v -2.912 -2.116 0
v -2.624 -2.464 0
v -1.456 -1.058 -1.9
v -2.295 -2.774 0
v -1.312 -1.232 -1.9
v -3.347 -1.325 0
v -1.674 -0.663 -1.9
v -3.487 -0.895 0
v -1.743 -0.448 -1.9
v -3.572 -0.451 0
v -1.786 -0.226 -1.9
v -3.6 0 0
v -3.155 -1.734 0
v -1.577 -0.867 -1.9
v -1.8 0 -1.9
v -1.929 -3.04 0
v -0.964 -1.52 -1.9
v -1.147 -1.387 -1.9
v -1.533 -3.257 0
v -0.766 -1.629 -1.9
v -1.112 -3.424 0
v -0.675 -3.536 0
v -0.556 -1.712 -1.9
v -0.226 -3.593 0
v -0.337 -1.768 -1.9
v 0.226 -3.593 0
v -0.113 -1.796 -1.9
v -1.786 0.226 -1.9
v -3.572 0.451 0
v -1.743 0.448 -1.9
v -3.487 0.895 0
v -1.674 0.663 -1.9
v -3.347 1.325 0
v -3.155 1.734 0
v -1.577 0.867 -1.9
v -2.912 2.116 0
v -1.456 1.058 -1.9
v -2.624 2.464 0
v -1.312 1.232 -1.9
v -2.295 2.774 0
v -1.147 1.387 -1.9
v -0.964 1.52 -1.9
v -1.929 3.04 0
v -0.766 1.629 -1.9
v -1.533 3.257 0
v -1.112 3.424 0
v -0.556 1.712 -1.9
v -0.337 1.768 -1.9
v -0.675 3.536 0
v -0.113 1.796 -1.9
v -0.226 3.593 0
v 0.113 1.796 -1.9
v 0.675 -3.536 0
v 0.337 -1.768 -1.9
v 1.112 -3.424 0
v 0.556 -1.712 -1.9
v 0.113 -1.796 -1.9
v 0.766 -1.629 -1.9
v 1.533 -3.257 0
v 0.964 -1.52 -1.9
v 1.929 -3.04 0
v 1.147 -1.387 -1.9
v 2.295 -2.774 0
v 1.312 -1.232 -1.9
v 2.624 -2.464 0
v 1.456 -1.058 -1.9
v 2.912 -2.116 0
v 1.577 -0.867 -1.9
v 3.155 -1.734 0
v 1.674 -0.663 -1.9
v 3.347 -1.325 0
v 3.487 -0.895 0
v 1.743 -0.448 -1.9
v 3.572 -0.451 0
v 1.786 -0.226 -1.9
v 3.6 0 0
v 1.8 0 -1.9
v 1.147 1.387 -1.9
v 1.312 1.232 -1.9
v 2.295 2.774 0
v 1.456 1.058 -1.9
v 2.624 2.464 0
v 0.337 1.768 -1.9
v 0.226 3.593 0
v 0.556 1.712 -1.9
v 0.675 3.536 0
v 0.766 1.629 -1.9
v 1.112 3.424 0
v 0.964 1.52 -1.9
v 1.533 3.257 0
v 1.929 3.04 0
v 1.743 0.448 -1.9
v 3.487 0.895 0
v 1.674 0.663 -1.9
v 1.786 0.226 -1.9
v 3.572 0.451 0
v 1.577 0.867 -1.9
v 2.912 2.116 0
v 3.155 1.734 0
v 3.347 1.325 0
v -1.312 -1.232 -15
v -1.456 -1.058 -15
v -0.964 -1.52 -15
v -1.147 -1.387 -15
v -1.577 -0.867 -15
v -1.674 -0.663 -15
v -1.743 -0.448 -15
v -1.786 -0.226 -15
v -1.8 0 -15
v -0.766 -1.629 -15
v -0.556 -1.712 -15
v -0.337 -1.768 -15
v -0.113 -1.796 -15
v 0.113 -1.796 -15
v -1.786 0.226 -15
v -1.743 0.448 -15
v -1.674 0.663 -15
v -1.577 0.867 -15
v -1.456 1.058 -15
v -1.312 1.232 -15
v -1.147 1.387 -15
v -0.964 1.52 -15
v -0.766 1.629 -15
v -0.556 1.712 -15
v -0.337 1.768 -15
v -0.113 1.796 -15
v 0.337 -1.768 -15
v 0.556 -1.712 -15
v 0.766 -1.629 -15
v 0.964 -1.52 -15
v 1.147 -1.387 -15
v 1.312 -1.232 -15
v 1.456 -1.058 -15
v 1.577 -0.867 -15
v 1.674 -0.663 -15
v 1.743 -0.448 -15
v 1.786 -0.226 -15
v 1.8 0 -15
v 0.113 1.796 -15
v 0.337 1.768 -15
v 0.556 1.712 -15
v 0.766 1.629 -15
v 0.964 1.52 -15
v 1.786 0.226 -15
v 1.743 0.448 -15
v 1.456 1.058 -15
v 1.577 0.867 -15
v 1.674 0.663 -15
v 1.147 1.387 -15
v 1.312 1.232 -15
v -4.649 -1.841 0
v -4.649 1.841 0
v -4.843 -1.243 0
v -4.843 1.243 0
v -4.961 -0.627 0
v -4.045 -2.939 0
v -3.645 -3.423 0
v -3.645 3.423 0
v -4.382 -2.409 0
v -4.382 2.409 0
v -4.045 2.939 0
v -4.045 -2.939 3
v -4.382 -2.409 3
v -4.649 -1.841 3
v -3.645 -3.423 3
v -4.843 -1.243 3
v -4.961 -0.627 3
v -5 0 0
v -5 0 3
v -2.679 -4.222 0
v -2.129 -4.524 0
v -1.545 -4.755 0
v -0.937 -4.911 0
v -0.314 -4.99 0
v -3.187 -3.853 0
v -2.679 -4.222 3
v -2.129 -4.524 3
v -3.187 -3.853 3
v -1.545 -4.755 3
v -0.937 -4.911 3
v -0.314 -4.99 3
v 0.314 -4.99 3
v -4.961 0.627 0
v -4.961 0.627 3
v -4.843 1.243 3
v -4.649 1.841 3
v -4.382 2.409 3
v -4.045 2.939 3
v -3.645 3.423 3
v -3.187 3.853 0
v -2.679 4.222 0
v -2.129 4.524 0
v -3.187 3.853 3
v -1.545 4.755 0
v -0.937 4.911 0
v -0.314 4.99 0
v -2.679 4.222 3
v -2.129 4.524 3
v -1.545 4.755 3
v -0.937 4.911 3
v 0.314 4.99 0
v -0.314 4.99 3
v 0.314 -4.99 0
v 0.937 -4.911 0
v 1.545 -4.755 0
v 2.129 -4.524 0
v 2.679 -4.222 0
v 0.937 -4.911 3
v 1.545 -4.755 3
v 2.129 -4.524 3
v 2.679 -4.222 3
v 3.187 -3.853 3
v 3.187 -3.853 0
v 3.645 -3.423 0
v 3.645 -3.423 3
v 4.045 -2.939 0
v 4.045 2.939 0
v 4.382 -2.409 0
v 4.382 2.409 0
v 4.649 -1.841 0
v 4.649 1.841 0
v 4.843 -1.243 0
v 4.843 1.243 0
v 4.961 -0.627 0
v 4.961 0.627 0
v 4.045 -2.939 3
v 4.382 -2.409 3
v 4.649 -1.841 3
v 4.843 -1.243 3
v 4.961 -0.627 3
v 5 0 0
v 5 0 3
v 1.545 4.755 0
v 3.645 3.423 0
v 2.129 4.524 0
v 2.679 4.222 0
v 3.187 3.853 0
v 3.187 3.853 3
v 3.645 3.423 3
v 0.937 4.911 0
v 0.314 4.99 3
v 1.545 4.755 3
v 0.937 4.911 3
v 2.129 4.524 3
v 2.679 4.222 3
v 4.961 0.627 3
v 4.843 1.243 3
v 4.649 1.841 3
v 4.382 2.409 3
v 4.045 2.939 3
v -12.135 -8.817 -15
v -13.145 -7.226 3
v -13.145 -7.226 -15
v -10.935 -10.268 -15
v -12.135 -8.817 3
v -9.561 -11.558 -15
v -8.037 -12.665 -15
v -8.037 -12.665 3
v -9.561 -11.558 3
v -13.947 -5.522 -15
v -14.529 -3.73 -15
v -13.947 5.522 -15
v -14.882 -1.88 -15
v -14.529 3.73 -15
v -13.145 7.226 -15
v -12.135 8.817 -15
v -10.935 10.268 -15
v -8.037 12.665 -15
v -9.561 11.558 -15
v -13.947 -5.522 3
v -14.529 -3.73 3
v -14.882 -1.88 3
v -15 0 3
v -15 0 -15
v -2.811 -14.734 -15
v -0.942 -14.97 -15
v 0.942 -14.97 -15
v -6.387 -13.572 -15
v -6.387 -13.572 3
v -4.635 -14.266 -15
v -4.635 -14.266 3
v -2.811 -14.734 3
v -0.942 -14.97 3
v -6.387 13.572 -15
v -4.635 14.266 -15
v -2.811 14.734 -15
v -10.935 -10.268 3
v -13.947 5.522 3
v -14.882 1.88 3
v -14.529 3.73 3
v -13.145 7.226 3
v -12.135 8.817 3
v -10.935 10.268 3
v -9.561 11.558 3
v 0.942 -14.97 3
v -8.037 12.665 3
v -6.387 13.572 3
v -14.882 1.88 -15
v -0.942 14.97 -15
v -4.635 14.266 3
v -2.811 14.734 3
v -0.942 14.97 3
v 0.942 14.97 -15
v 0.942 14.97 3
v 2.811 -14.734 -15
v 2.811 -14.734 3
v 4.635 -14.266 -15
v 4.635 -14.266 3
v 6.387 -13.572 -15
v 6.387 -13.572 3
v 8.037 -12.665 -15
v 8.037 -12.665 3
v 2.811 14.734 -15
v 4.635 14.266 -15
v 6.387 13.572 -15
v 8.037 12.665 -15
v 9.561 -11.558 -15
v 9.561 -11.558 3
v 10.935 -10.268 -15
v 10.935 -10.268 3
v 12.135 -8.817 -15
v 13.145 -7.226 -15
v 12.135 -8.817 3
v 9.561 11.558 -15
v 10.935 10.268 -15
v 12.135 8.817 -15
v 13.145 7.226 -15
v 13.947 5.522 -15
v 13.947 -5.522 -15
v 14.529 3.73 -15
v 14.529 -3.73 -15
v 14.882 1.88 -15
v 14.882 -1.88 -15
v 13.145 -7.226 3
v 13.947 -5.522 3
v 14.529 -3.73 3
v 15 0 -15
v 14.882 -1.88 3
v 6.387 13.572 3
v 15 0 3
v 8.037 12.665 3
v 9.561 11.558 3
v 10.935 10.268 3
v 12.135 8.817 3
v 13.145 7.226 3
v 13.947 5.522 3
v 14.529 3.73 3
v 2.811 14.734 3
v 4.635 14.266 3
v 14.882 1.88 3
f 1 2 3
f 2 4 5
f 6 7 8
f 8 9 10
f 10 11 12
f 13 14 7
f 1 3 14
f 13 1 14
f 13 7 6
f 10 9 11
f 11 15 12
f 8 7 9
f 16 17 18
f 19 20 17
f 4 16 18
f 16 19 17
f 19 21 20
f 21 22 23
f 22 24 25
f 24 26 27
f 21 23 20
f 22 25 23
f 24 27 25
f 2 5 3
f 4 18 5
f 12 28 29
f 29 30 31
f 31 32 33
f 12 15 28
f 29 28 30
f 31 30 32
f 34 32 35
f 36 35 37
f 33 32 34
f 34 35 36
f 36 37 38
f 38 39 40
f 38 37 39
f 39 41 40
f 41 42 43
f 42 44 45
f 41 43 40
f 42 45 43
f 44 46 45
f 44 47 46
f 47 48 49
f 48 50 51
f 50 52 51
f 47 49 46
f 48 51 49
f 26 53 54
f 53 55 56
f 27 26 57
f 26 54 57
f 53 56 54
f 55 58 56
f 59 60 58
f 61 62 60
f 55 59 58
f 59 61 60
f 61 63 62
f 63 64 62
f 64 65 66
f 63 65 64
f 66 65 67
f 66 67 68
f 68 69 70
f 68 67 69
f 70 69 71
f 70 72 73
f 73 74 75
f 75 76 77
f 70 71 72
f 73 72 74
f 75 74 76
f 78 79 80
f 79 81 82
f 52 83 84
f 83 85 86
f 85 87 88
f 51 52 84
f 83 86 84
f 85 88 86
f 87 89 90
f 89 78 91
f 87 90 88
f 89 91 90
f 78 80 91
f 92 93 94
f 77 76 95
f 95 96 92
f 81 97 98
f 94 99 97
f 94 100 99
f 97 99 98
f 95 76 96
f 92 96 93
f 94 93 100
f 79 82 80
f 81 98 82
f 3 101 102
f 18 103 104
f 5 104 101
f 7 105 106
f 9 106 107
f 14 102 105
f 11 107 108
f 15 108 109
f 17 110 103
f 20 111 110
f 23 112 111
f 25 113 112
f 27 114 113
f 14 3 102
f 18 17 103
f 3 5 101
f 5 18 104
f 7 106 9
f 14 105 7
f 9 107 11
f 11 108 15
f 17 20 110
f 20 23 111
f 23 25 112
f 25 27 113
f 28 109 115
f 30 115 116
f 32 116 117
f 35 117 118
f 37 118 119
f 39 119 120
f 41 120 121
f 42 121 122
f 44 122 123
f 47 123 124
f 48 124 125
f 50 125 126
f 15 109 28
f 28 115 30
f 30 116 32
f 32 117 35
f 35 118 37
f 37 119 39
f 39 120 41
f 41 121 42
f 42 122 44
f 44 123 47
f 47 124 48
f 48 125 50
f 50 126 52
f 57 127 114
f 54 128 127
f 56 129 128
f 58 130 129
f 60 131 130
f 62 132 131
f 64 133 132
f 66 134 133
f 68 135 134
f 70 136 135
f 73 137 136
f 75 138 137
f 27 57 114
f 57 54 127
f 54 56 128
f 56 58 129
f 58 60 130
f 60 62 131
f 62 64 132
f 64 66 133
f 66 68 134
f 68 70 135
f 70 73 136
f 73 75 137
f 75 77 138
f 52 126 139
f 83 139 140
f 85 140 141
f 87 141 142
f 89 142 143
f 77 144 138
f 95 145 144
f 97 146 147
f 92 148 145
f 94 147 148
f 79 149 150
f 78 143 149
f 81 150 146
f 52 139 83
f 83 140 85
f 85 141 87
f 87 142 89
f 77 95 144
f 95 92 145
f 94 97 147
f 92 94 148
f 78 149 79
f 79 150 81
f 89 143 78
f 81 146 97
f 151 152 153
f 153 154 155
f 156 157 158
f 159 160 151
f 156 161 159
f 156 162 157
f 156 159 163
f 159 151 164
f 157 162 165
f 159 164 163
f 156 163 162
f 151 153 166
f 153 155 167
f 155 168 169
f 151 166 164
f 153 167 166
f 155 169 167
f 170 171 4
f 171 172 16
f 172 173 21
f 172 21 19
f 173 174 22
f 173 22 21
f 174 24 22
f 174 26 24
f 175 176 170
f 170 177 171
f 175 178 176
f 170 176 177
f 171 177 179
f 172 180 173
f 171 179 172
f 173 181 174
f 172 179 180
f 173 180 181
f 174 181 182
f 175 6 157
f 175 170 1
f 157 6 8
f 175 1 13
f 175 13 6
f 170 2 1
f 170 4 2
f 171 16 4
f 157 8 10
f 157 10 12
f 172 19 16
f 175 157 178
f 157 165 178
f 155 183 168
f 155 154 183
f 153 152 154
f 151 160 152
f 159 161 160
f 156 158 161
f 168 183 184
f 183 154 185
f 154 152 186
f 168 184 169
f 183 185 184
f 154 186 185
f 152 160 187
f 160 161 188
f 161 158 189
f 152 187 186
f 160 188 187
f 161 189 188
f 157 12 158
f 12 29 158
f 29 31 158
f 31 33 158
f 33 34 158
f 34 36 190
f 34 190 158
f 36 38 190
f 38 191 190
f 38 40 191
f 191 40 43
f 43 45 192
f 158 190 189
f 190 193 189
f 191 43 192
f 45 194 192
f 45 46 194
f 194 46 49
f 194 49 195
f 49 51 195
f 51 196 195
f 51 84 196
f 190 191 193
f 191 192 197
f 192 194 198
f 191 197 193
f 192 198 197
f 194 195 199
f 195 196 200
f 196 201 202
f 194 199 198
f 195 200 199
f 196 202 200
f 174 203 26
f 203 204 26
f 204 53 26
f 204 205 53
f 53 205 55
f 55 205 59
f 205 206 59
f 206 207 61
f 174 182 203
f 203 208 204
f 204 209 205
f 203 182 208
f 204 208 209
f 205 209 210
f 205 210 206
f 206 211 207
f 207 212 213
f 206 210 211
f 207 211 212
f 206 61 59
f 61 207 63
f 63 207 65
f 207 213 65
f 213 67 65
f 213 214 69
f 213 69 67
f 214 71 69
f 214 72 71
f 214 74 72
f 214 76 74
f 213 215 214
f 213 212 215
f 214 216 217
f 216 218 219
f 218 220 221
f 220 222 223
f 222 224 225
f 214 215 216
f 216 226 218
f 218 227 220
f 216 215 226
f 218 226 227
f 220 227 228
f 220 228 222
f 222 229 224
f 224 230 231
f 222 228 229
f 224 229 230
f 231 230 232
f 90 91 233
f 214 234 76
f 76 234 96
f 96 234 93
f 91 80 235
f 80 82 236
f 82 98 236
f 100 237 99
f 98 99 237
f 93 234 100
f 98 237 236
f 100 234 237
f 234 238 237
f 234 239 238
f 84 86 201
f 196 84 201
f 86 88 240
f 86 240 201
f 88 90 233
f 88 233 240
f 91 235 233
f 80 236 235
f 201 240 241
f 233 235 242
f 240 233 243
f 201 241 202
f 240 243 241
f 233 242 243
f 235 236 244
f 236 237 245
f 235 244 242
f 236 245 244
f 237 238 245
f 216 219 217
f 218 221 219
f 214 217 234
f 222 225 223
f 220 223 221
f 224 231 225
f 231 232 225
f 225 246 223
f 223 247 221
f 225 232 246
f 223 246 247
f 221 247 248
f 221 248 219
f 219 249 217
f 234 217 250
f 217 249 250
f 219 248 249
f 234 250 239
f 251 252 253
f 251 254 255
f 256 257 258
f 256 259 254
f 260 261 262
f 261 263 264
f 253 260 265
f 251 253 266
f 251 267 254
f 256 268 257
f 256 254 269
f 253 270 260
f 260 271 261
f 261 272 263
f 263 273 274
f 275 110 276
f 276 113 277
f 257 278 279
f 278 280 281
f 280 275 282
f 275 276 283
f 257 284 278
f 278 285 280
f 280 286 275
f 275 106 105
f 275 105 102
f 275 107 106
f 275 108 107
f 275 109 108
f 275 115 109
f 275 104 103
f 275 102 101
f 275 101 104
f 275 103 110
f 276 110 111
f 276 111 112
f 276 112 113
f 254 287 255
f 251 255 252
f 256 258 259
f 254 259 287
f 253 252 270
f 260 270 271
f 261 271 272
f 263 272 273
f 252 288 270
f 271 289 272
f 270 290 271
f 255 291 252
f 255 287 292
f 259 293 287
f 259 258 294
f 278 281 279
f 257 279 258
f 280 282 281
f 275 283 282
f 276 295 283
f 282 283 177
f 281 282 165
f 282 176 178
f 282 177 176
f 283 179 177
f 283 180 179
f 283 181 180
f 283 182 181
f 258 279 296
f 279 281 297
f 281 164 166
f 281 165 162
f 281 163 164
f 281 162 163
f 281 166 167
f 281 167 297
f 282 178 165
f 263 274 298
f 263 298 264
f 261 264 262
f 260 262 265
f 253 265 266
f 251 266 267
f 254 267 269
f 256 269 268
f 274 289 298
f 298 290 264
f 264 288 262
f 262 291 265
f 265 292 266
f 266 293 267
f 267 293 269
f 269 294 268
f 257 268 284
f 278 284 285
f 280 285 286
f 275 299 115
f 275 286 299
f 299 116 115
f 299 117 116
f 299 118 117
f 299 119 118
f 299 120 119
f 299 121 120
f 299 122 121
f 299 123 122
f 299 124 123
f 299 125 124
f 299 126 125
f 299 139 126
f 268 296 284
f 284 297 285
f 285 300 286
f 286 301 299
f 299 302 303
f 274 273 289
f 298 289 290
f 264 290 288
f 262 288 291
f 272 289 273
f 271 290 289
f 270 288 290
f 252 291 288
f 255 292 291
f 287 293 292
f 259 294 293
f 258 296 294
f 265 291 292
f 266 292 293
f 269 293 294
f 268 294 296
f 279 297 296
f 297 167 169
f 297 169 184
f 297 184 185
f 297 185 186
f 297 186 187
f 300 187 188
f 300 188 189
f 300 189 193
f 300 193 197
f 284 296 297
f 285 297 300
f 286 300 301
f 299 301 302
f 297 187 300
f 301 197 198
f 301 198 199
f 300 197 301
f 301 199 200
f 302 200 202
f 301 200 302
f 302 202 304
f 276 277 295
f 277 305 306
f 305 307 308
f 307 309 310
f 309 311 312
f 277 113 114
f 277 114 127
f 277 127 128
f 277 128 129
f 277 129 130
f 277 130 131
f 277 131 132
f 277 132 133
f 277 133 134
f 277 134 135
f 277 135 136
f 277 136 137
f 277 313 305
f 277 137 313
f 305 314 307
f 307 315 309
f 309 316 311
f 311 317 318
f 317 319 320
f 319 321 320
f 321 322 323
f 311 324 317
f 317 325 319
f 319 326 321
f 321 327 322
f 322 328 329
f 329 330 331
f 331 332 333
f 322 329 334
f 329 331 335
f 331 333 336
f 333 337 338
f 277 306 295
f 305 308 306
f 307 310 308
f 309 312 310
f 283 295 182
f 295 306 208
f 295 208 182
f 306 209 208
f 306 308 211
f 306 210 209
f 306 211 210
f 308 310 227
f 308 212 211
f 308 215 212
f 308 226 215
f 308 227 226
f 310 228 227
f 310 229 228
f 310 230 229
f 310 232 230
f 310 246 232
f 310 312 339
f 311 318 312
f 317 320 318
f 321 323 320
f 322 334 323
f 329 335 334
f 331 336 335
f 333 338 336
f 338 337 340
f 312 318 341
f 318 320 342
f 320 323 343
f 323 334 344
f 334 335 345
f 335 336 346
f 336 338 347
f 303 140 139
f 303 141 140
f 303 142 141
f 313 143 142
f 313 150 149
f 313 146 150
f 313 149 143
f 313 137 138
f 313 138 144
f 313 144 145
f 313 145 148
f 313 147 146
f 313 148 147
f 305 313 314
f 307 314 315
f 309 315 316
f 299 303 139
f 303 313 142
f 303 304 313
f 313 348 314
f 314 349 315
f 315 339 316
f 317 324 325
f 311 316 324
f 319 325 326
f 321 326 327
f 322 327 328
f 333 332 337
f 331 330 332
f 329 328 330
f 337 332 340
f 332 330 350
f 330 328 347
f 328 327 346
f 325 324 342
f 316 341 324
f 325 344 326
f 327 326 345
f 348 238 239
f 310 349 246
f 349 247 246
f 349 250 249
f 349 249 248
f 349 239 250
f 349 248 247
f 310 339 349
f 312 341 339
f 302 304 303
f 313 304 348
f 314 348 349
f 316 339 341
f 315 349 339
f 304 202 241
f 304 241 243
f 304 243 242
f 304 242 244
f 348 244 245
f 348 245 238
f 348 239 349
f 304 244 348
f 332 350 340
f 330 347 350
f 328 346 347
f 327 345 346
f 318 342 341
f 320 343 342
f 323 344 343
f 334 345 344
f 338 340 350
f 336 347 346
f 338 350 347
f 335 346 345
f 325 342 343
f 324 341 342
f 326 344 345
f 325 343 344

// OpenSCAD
$fn = 50;

difference() {
	union() {
		translate(v = [0, 0, -15.0]) {
			cylinder(h = 18, r = 15.0);
		}
	}
	union() {
		translate(v = [0, 0, 0]) {
			rotate(a = [0, 0, 0]) {
				difference() {
					union() {
						translate(v = [0, 0, -18.0]) {
							cylinder(h = 18, r = 1.5);
						}
						translate(v = [0, 0, -1.9]) {
							cylinder(h = 1.9, r1 = 1.8, r2 = 3.6);
						}
						translate(v = [0, 0, -18.0]) {
							cylinder(h = 18, r = 1.8);
						}
						translate(v = [0, 0, -18.0]) {
							cylinder(h = 18, r = 1.5);
						}
					}
					union();
				}
			}
		}
		#cylinder(h = 3, r = 5.0);
	}
}
